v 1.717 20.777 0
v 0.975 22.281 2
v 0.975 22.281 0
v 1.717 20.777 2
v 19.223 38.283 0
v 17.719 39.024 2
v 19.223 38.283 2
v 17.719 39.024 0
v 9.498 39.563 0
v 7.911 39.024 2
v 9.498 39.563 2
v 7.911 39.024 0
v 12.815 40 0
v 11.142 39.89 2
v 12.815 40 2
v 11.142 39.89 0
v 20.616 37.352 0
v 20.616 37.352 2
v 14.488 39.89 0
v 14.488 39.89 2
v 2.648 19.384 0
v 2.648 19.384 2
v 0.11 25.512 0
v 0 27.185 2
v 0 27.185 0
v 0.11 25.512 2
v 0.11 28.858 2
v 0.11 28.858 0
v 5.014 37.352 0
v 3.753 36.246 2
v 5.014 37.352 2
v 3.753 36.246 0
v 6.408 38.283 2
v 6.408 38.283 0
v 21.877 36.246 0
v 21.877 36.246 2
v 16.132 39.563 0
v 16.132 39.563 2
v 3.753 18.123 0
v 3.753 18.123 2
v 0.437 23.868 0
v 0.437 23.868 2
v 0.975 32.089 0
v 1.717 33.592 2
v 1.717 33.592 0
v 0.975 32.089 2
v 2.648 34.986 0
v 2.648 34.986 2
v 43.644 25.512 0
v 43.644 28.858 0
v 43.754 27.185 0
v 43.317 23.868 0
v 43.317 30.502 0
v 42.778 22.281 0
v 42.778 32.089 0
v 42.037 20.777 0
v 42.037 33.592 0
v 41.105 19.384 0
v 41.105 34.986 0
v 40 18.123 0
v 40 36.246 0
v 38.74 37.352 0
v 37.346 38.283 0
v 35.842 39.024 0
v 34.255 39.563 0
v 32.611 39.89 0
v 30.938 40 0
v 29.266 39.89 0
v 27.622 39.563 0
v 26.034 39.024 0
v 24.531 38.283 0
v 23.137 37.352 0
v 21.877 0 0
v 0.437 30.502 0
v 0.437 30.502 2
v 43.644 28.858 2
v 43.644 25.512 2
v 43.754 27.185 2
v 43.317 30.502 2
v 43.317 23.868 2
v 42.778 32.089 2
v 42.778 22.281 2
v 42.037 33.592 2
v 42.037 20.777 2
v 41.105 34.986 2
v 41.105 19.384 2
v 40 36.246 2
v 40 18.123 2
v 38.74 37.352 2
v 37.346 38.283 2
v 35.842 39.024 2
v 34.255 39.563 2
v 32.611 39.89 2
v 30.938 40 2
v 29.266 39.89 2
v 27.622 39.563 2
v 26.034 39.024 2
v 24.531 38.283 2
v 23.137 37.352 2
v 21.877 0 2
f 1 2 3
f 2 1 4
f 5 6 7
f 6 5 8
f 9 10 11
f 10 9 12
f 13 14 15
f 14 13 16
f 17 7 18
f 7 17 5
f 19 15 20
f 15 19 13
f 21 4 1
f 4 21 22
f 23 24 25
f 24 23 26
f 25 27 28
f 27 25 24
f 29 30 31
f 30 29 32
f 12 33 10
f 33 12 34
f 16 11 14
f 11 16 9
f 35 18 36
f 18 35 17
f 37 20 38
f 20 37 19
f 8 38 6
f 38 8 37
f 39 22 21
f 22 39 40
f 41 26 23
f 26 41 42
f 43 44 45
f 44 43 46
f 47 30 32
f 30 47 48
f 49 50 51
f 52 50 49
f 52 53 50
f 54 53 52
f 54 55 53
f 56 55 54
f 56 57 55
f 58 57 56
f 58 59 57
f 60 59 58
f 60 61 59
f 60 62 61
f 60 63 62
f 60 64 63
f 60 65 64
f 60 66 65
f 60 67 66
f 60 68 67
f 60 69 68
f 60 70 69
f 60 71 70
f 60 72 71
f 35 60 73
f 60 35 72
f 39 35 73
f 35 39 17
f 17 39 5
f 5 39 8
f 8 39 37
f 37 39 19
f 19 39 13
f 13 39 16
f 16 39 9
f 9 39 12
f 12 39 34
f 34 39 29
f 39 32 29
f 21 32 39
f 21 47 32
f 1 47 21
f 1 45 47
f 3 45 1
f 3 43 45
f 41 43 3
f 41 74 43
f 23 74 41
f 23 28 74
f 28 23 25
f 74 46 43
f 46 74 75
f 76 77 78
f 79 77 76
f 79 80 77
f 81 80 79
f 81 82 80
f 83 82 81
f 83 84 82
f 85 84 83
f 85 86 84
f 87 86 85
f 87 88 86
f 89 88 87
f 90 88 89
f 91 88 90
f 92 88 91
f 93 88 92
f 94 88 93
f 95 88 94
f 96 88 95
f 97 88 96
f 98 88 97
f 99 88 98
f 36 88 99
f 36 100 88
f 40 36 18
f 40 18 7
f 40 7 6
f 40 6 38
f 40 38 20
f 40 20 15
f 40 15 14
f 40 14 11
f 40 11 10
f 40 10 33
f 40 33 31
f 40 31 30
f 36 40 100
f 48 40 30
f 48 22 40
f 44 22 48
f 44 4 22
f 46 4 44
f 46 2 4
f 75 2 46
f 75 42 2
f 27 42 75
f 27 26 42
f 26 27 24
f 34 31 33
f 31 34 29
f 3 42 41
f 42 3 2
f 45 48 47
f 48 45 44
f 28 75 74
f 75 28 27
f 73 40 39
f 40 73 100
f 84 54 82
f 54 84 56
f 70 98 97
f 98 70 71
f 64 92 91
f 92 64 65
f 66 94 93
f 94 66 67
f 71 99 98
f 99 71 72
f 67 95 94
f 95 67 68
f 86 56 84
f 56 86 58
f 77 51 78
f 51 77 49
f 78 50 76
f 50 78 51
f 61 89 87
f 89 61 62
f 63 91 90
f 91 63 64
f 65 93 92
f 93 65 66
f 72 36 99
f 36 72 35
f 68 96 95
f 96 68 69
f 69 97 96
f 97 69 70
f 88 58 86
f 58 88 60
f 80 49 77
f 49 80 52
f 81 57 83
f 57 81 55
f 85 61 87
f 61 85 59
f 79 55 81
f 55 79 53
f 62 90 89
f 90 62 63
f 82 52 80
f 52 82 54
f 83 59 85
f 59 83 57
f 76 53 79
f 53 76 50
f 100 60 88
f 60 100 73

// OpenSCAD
height = 40;
ancho = 2;

module heart_sub_component(radius) {
    rotated_angle = 45;
    diameter = radius * 2;
    $fn = 48;

    translate([-radius * cos(rotated_angle), 0, 0]) 
        rotate(-rotated_angle) union() {
            cylinder(r=radius, h=ancho);
            translate([0, -radius, 0]) 
                cube([diameter,diameter,ancho]);
        }
}

module heart(radius, center = false) {
    offsetX = center ? 0 : radius + radius * cos(45);
    offsetY = center ? 1.5 * radius * sin(45) - 0.5 * radius : 3 * radius * sin(45);

    translate([offsetX, offsetY, 0]) union() {
        heart_sub_component(radius);
        mirror([1, 0, 0]) heart_sub_component(radius);
    }

}

heart(height / (3 * sin(45) + 1));
